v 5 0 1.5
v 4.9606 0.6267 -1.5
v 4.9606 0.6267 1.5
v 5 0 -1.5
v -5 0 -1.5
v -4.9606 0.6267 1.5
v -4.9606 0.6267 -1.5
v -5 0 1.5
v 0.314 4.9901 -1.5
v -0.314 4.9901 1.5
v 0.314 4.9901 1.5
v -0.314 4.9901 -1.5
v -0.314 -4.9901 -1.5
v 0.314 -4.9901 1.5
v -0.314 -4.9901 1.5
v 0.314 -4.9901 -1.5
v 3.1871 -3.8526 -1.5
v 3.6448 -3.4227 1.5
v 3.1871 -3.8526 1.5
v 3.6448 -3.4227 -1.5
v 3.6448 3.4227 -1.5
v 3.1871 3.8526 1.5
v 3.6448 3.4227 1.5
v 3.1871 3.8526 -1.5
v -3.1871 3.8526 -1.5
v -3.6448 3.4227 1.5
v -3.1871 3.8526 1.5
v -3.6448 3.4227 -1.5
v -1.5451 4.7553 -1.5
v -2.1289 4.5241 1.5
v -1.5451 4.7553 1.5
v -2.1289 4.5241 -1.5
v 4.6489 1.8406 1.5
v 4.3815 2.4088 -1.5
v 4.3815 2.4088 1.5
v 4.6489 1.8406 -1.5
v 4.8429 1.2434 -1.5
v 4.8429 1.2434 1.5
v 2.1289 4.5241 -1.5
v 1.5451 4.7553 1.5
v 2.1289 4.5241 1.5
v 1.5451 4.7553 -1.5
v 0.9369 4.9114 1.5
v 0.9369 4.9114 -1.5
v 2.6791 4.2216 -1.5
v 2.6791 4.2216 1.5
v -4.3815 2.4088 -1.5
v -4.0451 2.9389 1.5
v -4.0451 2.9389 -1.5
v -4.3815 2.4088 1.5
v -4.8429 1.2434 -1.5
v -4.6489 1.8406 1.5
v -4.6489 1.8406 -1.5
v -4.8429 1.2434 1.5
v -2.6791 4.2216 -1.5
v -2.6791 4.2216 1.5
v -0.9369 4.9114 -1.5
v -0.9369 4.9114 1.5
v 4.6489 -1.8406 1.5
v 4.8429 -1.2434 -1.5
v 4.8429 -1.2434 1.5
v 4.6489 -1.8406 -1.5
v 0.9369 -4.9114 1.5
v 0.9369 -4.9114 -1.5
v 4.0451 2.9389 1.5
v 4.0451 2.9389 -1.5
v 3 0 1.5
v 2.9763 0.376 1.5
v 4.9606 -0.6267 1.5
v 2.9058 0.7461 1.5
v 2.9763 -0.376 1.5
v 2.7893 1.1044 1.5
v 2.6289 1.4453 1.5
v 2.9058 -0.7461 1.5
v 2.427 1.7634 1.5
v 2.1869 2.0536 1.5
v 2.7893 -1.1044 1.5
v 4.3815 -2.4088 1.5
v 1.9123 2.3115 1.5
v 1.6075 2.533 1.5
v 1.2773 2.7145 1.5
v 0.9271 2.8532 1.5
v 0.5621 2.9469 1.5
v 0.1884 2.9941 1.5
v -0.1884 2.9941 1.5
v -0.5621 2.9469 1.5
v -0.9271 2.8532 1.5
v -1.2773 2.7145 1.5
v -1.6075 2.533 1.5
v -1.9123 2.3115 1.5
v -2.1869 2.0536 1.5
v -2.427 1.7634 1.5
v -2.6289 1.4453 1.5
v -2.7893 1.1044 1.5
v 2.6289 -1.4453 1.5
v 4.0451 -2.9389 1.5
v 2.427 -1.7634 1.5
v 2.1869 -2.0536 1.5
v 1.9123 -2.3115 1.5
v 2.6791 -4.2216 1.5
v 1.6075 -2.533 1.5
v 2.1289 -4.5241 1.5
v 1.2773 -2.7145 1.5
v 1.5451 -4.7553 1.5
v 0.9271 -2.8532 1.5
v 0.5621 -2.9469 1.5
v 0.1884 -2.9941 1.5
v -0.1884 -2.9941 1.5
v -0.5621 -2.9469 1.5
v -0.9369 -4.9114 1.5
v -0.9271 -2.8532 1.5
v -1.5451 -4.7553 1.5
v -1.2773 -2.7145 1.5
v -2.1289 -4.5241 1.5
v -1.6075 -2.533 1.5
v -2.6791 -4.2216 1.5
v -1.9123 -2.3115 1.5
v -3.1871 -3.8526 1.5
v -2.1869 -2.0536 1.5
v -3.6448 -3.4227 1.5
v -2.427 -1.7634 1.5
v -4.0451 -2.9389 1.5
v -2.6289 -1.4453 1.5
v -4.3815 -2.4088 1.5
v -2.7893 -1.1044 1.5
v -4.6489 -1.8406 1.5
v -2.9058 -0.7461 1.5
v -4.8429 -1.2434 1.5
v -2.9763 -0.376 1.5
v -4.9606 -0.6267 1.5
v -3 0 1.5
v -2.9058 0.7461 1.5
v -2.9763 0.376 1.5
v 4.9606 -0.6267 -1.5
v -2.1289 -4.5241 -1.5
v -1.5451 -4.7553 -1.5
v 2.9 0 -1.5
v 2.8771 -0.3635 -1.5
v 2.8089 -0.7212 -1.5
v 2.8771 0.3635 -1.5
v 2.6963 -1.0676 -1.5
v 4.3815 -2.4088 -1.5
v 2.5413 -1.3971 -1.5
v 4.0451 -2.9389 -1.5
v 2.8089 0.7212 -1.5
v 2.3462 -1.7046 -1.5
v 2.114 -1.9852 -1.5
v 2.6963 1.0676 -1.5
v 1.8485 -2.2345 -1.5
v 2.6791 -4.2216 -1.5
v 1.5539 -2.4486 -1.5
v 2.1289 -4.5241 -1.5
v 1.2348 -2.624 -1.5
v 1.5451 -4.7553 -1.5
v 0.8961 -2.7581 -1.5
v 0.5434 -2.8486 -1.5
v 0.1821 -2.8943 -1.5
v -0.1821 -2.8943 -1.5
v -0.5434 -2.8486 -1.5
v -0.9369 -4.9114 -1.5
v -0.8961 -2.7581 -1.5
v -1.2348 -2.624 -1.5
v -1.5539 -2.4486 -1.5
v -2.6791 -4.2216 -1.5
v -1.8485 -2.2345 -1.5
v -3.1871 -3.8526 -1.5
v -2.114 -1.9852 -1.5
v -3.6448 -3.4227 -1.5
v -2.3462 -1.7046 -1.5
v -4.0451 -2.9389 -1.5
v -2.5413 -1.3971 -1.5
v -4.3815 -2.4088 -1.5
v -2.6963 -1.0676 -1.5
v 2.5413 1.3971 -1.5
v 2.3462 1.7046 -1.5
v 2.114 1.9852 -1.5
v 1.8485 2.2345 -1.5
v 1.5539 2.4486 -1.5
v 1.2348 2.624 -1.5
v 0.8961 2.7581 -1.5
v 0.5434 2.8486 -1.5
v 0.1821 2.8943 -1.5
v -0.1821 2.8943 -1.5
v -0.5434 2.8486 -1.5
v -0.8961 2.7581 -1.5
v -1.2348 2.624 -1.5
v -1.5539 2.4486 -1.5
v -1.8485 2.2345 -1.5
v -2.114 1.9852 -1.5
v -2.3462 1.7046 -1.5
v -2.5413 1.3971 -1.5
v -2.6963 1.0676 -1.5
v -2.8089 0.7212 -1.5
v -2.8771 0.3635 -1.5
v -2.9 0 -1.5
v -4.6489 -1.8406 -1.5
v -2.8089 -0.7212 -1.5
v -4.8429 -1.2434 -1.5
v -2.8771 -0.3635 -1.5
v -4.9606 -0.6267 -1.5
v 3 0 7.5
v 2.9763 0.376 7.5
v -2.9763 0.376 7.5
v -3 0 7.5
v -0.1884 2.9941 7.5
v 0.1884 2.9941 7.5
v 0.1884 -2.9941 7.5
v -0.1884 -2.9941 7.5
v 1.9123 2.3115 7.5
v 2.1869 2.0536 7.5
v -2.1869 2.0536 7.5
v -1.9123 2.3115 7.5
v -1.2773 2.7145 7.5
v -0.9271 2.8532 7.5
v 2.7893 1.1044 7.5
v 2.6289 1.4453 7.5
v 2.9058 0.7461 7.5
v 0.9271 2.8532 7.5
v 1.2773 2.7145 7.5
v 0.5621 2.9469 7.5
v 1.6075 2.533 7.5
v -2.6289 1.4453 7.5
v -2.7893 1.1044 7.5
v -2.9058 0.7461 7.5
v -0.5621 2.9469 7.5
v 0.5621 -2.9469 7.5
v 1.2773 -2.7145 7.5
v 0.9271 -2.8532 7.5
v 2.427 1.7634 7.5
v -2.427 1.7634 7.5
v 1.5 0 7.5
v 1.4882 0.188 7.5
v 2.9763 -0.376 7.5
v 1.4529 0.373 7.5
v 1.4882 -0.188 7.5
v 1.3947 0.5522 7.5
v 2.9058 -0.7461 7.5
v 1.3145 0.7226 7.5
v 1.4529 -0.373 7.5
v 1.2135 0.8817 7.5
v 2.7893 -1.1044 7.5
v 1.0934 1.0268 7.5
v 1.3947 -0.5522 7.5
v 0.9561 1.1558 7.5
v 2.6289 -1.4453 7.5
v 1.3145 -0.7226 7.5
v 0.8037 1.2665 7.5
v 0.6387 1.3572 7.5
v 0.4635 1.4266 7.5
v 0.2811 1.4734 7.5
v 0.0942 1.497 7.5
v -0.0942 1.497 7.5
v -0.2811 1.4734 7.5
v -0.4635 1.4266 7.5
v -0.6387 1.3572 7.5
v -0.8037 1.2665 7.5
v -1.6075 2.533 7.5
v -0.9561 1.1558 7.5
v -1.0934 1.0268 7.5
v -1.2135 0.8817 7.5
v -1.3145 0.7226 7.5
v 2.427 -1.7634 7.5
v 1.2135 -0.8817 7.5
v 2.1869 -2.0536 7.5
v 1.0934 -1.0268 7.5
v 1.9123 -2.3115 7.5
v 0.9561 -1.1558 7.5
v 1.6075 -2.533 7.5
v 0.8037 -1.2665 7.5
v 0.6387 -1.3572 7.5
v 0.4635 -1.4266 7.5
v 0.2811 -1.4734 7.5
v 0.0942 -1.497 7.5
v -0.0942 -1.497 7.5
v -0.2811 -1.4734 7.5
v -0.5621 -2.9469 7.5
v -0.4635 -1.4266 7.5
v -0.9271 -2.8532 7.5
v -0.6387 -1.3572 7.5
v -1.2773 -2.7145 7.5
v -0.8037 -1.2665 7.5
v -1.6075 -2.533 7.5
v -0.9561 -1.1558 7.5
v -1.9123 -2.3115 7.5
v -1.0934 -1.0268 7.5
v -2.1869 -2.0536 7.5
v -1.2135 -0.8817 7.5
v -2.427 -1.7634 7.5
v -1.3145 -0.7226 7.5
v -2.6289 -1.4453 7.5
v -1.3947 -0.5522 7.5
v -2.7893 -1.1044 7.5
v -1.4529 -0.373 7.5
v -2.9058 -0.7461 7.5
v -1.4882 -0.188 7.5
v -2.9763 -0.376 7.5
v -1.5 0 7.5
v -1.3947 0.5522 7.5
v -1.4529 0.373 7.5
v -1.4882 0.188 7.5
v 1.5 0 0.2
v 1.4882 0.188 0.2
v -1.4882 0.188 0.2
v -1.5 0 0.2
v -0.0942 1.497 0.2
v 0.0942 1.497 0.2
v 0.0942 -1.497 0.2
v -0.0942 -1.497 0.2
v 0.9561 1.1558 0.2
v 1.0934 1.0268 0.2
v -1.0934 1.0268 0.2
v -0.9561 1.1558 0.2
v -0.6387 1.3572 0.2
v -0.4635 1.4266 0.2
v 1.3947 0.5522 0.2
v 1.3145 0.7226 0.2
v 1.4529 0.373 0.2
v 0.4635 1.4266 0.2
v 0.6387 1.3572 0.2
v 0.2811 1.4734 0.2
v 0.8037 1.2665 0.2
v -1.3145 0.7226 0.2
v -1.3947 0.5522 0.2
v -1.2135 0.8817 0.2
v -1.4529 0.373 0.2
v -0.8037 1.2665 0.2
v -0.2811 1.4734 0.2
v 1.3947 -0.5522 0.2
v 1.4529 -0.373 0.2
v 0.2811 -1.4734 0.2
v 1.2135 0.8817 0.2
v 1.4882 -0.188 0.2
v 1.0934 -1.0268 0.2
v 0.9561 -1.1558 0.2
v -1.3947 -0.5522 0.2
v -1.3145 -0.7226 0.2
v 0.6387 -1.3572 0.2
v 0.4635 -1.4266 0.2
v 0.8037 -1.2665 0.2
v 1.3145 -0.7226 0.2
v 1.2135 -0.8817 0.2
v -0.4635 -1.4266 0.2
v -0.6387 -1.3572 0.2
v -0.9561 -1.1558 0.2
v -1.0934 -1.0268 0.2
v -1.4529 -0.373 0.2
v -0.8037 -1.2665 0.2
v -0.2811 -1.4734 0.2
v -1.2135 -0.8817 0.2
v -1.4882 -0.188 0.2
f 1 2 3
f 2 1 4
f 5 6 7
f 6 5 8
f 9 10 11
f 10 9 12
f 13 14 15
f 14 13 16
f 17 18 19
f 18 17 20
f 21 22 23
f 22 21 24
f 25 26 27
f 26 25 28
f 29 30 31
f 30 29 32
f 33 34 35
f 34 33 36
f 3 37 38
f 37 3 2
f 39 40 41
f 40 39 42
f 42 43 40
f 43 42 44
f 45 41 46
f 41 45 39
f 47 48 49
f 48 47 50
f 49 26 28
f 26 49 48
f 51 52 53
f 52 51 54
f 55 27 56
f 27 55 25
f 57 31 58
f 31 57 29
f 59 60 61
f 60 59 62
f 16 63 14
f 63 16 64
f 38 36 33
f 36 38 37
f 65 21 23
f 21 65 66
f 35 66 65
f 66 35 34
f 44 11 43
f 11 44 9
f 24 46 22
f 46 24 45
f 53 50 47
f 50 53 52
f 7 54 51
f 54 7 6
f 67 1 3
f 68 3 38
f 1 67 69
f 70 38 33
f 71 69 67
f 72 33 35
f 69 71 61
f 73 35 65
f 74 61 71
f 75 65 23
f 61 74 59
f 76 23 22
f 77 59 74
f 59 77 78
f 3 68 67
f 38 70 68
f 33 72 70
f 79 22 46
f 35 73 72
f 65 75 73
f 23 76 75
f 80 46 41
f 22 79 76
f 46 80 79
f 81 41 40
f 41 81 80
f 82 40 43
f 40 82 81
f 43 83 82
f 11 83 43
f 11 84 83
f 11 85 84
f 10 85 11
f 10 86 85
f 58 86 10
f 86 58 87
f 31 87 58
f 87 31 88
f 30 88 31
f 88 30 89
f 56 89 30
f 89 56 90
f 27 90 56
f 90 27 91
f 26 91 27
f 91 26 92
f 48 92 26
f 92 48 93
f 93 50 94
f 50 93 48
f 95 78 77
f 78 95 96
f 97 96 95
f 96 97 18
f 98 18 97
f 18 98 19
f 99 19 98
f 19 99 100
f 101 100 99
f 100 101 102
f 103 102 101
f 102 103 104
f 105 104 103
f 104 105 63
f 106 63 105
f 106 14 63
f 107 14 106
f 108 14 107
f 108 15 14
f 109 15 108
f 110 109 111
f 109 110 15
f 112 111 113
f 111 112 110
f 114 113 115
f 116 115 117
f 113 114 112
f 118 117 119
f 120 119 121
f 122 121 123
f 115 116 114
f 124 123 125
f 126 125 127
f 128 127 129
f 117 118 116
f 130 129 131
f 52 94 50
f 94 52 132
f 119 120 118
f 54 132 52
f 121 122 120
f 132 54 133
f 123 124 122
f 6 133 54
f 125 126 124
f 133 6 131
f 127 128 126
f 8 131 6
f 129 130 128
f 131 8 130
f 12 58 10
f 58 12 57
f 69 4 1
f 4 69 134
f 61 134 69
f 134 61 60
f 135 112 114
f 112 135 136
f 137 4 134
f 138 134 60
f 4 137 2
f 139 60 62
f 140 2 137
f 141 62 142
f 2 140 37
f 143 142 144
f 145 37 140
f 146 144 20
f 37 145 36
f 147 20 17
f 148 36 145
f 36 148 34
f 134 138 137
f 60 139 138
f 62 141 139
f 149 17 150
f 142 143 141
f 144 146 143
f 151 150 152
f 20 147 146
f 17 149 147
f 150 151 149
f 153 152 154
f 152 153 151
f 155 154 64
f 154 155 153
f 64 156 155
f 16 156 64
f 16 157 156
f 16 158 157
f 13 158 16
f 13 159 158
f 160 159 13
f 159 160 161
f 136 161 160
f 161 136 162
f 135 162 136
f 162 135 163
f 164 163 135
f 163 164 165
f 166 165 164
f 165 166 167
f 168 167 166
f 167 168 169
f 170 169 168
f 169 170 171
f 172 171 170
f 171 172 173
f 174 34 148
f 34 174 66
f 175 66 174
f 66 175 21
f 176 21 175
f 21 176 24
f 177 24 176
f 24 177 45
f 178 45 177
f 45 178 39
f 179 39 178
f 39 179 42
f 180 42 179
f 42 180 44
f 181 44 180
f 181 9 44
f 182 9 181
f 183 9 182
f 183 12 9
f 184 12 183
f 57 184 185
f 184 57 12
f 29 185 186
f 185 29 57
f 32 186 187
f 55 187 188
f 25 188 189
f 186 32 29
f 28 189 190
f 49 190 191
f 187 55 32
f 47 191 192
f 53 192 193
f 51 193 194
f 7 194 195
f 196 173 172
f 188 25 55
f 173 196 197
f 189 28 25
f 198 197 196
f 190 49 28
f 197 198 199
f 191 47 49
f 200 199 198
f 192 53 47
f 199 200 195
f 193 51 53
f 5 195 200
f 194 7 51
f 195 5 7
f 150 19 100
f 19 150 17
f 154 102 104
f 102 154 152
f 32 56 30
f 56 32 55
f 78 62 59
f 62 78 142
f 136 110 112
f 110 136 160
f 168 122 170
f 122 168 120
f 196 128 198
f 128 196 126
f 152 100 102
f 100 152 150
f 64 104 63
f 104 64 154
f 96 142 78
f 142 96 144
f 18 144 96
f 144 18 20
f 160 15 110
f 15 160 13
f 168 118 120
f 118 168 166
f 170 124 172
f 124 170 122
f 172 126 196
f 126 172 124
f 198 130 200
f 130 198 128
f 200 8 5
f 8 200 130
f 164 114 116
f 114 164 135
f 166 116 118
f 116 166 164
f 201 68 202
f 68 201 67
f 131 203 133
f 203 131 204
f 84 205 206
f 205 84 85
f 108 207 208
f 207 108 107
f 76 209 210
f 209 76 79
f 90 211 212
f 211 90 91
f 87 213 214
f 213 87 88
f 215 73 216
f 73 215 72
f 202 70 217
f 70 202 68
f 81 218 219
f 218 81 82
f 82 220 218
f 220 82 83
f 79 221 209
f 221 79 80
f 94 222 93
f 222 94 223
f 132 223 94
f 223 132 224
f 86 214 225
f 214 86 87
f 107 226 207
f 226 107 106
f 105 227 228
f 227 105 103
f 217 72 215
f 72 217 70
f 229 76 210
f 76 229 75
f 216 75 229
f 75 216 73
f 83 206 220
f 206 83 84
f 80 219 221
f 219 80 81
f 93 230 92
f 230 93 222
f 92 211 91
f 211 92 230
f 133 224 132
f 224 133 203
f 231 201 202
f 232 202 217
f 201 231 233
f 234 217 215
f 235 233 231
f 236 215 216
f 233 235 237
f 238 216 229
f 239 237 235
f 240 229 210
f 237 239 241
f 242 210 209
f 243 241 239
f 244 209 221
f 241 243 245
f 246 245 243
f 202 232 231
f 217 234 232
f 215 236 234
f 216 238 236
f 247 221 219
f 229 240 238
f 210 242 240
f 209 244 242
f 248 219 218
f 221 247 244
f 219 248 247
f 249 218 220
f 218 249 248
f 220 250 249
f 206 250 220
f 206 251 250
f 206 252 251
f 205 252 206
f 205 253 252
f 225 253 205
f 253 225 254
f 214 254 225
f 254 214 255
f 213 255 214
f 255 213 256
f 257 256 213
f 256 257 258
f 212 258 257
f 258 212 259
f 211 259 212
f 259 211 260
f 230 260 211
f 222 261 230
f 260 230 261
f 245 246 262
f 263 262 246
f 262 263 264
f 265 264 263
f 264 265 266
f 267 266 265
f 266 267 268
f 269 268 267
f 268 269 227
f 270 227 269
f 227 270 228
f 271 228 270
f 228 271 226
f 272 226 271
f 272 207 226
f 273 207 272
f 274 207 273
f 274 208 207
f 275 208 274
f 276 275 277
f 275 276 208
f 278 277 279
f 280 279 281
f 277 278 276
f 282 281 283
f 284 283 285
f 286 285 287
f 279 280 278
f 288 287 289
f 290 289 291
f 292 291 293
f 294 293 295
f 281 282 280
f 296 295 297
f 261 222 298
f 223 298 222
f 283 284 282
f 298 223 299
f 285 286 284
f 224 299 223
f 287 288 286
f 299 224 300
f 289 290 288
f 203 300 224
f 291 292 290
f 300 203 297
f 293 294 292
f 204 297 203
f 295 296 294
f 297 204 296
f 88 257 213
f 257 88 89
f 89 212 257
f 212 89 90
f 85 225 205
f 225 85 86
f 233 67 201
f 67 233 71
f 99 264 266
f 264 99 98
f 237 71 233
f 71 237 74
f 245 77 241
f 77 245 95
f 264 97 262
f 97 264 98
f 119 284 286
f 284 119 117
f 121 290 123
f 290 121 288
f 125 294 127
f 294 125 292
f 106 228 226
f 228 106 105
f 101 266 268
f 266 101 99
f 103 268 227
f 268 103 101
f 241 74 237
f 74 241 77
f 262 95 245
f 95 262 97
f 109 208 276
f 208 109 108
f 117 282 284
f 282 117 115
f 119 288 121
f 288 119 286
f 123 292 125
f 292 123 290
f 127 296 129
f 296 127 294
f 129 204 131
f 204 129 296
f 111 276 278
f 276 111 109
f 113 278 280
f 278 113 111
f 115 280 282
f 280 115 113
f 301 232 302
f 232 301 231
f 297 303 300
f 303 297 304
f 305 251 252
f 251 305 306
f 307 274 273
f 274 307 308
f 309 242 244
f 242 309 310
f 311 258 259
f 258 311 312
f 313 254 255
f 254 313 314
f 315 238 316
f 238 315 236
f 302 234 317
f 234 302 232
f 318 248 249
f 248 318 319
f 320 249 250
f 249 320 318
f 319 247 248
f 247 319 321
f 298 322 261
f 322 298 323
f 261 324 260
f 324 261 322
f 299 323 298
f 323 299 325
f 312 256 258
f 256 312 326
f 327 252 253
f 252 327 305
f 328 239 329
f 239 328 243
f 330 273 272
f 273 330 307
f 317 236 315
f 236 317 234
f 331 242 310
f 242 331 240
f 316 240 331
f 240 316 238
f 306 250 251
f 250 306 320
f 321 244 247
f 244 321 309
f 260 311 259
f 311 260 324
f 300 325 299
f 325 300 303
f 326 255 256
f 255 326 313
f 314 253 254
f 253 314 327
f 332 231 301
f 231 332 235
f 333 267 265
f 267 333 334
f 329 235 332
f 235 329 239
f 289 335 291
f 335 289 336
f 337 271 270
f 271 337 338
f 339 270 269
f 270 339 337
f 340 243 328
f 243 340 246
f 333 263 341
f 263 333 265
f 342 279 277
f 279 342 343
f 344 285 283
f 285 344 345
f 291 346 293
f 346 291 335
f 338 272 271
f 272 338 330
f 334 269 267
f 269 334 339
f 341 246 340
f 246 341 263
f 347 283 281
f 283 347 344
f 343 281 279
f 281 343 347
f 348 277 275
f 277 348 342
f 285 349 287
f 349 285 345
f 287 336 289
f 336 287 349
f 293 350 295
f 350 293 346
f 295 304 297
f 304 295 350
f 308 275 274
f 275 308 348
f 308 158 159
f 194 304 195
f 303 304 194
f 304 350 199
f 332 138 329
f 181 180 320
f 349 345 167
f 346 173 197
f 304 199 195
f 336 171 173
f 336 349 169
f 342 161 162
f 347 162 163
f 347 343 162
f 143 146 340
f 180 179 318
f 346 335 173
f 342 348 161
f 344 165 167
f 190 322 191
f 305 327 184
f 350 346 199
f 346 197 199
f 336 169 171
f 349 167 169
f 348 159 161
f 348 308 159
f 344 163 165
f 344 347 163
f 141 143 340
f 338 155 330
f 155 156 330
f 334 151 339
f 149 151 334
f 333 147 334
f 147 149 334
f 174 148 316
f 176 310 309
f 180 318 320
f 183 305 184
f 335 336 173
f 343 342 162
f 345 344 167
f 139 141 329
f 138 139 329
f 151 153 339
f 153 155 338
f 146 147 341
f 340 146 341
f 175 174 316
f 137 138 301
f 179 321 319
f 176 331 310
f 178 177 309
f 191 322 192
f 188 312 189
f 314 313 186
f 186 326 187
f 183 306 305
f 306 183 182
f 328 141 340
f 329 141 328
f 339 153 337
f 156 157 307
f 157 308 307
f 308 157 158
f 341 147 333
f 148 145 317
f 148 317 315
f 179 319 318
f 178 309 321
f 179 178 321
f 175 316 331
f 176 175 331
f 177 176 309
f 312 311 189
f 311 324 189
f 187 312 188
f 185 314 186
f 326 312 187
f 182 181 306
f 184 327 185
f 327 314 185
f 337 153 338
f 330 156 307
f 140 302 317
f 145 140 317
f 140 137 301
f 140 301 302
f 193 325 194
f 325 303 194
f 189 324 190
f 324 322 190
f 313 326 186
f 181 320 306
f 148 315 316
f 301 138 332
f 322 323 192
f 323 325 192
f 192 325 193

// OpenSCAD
$fn = 50;


difference() {
	union() {
		translate(v = [0, 0, -1.5000000000]) {
			rotate(a = [0, 0, 0]) {
				cylinder(h = 3, r = 5.0000000000);
			}
		}
		translate(v = [0, 0, -1.5000000000]) {
			rotate(a = [0, 0, 0]) {
				cylinder(h = 9, r = 3.0000000000);
			}
		}
	}
	union() {
		translate(v = [0, 0, -125.0000000000]) {
			rotate(a = [0, 0, 0]) {
				cylinder(h = 250, r = 1.5000000000);
			}
		}
		#translate(v = [0, 0, 0.2000000000]) {
			rotate(a = [0, 180, 0]) {
				cylinder(h = 1.7000000000, r1 = 1.5000000000, r2 = 2.9000000000);
			}
		}
		#translate(v = [0, 0, 7.5000000000]) {
			rotate(a = [0, 180, 0]) {
				cylinder(h = 9, r = 1.5000000000);
			}
		}
	}
}
